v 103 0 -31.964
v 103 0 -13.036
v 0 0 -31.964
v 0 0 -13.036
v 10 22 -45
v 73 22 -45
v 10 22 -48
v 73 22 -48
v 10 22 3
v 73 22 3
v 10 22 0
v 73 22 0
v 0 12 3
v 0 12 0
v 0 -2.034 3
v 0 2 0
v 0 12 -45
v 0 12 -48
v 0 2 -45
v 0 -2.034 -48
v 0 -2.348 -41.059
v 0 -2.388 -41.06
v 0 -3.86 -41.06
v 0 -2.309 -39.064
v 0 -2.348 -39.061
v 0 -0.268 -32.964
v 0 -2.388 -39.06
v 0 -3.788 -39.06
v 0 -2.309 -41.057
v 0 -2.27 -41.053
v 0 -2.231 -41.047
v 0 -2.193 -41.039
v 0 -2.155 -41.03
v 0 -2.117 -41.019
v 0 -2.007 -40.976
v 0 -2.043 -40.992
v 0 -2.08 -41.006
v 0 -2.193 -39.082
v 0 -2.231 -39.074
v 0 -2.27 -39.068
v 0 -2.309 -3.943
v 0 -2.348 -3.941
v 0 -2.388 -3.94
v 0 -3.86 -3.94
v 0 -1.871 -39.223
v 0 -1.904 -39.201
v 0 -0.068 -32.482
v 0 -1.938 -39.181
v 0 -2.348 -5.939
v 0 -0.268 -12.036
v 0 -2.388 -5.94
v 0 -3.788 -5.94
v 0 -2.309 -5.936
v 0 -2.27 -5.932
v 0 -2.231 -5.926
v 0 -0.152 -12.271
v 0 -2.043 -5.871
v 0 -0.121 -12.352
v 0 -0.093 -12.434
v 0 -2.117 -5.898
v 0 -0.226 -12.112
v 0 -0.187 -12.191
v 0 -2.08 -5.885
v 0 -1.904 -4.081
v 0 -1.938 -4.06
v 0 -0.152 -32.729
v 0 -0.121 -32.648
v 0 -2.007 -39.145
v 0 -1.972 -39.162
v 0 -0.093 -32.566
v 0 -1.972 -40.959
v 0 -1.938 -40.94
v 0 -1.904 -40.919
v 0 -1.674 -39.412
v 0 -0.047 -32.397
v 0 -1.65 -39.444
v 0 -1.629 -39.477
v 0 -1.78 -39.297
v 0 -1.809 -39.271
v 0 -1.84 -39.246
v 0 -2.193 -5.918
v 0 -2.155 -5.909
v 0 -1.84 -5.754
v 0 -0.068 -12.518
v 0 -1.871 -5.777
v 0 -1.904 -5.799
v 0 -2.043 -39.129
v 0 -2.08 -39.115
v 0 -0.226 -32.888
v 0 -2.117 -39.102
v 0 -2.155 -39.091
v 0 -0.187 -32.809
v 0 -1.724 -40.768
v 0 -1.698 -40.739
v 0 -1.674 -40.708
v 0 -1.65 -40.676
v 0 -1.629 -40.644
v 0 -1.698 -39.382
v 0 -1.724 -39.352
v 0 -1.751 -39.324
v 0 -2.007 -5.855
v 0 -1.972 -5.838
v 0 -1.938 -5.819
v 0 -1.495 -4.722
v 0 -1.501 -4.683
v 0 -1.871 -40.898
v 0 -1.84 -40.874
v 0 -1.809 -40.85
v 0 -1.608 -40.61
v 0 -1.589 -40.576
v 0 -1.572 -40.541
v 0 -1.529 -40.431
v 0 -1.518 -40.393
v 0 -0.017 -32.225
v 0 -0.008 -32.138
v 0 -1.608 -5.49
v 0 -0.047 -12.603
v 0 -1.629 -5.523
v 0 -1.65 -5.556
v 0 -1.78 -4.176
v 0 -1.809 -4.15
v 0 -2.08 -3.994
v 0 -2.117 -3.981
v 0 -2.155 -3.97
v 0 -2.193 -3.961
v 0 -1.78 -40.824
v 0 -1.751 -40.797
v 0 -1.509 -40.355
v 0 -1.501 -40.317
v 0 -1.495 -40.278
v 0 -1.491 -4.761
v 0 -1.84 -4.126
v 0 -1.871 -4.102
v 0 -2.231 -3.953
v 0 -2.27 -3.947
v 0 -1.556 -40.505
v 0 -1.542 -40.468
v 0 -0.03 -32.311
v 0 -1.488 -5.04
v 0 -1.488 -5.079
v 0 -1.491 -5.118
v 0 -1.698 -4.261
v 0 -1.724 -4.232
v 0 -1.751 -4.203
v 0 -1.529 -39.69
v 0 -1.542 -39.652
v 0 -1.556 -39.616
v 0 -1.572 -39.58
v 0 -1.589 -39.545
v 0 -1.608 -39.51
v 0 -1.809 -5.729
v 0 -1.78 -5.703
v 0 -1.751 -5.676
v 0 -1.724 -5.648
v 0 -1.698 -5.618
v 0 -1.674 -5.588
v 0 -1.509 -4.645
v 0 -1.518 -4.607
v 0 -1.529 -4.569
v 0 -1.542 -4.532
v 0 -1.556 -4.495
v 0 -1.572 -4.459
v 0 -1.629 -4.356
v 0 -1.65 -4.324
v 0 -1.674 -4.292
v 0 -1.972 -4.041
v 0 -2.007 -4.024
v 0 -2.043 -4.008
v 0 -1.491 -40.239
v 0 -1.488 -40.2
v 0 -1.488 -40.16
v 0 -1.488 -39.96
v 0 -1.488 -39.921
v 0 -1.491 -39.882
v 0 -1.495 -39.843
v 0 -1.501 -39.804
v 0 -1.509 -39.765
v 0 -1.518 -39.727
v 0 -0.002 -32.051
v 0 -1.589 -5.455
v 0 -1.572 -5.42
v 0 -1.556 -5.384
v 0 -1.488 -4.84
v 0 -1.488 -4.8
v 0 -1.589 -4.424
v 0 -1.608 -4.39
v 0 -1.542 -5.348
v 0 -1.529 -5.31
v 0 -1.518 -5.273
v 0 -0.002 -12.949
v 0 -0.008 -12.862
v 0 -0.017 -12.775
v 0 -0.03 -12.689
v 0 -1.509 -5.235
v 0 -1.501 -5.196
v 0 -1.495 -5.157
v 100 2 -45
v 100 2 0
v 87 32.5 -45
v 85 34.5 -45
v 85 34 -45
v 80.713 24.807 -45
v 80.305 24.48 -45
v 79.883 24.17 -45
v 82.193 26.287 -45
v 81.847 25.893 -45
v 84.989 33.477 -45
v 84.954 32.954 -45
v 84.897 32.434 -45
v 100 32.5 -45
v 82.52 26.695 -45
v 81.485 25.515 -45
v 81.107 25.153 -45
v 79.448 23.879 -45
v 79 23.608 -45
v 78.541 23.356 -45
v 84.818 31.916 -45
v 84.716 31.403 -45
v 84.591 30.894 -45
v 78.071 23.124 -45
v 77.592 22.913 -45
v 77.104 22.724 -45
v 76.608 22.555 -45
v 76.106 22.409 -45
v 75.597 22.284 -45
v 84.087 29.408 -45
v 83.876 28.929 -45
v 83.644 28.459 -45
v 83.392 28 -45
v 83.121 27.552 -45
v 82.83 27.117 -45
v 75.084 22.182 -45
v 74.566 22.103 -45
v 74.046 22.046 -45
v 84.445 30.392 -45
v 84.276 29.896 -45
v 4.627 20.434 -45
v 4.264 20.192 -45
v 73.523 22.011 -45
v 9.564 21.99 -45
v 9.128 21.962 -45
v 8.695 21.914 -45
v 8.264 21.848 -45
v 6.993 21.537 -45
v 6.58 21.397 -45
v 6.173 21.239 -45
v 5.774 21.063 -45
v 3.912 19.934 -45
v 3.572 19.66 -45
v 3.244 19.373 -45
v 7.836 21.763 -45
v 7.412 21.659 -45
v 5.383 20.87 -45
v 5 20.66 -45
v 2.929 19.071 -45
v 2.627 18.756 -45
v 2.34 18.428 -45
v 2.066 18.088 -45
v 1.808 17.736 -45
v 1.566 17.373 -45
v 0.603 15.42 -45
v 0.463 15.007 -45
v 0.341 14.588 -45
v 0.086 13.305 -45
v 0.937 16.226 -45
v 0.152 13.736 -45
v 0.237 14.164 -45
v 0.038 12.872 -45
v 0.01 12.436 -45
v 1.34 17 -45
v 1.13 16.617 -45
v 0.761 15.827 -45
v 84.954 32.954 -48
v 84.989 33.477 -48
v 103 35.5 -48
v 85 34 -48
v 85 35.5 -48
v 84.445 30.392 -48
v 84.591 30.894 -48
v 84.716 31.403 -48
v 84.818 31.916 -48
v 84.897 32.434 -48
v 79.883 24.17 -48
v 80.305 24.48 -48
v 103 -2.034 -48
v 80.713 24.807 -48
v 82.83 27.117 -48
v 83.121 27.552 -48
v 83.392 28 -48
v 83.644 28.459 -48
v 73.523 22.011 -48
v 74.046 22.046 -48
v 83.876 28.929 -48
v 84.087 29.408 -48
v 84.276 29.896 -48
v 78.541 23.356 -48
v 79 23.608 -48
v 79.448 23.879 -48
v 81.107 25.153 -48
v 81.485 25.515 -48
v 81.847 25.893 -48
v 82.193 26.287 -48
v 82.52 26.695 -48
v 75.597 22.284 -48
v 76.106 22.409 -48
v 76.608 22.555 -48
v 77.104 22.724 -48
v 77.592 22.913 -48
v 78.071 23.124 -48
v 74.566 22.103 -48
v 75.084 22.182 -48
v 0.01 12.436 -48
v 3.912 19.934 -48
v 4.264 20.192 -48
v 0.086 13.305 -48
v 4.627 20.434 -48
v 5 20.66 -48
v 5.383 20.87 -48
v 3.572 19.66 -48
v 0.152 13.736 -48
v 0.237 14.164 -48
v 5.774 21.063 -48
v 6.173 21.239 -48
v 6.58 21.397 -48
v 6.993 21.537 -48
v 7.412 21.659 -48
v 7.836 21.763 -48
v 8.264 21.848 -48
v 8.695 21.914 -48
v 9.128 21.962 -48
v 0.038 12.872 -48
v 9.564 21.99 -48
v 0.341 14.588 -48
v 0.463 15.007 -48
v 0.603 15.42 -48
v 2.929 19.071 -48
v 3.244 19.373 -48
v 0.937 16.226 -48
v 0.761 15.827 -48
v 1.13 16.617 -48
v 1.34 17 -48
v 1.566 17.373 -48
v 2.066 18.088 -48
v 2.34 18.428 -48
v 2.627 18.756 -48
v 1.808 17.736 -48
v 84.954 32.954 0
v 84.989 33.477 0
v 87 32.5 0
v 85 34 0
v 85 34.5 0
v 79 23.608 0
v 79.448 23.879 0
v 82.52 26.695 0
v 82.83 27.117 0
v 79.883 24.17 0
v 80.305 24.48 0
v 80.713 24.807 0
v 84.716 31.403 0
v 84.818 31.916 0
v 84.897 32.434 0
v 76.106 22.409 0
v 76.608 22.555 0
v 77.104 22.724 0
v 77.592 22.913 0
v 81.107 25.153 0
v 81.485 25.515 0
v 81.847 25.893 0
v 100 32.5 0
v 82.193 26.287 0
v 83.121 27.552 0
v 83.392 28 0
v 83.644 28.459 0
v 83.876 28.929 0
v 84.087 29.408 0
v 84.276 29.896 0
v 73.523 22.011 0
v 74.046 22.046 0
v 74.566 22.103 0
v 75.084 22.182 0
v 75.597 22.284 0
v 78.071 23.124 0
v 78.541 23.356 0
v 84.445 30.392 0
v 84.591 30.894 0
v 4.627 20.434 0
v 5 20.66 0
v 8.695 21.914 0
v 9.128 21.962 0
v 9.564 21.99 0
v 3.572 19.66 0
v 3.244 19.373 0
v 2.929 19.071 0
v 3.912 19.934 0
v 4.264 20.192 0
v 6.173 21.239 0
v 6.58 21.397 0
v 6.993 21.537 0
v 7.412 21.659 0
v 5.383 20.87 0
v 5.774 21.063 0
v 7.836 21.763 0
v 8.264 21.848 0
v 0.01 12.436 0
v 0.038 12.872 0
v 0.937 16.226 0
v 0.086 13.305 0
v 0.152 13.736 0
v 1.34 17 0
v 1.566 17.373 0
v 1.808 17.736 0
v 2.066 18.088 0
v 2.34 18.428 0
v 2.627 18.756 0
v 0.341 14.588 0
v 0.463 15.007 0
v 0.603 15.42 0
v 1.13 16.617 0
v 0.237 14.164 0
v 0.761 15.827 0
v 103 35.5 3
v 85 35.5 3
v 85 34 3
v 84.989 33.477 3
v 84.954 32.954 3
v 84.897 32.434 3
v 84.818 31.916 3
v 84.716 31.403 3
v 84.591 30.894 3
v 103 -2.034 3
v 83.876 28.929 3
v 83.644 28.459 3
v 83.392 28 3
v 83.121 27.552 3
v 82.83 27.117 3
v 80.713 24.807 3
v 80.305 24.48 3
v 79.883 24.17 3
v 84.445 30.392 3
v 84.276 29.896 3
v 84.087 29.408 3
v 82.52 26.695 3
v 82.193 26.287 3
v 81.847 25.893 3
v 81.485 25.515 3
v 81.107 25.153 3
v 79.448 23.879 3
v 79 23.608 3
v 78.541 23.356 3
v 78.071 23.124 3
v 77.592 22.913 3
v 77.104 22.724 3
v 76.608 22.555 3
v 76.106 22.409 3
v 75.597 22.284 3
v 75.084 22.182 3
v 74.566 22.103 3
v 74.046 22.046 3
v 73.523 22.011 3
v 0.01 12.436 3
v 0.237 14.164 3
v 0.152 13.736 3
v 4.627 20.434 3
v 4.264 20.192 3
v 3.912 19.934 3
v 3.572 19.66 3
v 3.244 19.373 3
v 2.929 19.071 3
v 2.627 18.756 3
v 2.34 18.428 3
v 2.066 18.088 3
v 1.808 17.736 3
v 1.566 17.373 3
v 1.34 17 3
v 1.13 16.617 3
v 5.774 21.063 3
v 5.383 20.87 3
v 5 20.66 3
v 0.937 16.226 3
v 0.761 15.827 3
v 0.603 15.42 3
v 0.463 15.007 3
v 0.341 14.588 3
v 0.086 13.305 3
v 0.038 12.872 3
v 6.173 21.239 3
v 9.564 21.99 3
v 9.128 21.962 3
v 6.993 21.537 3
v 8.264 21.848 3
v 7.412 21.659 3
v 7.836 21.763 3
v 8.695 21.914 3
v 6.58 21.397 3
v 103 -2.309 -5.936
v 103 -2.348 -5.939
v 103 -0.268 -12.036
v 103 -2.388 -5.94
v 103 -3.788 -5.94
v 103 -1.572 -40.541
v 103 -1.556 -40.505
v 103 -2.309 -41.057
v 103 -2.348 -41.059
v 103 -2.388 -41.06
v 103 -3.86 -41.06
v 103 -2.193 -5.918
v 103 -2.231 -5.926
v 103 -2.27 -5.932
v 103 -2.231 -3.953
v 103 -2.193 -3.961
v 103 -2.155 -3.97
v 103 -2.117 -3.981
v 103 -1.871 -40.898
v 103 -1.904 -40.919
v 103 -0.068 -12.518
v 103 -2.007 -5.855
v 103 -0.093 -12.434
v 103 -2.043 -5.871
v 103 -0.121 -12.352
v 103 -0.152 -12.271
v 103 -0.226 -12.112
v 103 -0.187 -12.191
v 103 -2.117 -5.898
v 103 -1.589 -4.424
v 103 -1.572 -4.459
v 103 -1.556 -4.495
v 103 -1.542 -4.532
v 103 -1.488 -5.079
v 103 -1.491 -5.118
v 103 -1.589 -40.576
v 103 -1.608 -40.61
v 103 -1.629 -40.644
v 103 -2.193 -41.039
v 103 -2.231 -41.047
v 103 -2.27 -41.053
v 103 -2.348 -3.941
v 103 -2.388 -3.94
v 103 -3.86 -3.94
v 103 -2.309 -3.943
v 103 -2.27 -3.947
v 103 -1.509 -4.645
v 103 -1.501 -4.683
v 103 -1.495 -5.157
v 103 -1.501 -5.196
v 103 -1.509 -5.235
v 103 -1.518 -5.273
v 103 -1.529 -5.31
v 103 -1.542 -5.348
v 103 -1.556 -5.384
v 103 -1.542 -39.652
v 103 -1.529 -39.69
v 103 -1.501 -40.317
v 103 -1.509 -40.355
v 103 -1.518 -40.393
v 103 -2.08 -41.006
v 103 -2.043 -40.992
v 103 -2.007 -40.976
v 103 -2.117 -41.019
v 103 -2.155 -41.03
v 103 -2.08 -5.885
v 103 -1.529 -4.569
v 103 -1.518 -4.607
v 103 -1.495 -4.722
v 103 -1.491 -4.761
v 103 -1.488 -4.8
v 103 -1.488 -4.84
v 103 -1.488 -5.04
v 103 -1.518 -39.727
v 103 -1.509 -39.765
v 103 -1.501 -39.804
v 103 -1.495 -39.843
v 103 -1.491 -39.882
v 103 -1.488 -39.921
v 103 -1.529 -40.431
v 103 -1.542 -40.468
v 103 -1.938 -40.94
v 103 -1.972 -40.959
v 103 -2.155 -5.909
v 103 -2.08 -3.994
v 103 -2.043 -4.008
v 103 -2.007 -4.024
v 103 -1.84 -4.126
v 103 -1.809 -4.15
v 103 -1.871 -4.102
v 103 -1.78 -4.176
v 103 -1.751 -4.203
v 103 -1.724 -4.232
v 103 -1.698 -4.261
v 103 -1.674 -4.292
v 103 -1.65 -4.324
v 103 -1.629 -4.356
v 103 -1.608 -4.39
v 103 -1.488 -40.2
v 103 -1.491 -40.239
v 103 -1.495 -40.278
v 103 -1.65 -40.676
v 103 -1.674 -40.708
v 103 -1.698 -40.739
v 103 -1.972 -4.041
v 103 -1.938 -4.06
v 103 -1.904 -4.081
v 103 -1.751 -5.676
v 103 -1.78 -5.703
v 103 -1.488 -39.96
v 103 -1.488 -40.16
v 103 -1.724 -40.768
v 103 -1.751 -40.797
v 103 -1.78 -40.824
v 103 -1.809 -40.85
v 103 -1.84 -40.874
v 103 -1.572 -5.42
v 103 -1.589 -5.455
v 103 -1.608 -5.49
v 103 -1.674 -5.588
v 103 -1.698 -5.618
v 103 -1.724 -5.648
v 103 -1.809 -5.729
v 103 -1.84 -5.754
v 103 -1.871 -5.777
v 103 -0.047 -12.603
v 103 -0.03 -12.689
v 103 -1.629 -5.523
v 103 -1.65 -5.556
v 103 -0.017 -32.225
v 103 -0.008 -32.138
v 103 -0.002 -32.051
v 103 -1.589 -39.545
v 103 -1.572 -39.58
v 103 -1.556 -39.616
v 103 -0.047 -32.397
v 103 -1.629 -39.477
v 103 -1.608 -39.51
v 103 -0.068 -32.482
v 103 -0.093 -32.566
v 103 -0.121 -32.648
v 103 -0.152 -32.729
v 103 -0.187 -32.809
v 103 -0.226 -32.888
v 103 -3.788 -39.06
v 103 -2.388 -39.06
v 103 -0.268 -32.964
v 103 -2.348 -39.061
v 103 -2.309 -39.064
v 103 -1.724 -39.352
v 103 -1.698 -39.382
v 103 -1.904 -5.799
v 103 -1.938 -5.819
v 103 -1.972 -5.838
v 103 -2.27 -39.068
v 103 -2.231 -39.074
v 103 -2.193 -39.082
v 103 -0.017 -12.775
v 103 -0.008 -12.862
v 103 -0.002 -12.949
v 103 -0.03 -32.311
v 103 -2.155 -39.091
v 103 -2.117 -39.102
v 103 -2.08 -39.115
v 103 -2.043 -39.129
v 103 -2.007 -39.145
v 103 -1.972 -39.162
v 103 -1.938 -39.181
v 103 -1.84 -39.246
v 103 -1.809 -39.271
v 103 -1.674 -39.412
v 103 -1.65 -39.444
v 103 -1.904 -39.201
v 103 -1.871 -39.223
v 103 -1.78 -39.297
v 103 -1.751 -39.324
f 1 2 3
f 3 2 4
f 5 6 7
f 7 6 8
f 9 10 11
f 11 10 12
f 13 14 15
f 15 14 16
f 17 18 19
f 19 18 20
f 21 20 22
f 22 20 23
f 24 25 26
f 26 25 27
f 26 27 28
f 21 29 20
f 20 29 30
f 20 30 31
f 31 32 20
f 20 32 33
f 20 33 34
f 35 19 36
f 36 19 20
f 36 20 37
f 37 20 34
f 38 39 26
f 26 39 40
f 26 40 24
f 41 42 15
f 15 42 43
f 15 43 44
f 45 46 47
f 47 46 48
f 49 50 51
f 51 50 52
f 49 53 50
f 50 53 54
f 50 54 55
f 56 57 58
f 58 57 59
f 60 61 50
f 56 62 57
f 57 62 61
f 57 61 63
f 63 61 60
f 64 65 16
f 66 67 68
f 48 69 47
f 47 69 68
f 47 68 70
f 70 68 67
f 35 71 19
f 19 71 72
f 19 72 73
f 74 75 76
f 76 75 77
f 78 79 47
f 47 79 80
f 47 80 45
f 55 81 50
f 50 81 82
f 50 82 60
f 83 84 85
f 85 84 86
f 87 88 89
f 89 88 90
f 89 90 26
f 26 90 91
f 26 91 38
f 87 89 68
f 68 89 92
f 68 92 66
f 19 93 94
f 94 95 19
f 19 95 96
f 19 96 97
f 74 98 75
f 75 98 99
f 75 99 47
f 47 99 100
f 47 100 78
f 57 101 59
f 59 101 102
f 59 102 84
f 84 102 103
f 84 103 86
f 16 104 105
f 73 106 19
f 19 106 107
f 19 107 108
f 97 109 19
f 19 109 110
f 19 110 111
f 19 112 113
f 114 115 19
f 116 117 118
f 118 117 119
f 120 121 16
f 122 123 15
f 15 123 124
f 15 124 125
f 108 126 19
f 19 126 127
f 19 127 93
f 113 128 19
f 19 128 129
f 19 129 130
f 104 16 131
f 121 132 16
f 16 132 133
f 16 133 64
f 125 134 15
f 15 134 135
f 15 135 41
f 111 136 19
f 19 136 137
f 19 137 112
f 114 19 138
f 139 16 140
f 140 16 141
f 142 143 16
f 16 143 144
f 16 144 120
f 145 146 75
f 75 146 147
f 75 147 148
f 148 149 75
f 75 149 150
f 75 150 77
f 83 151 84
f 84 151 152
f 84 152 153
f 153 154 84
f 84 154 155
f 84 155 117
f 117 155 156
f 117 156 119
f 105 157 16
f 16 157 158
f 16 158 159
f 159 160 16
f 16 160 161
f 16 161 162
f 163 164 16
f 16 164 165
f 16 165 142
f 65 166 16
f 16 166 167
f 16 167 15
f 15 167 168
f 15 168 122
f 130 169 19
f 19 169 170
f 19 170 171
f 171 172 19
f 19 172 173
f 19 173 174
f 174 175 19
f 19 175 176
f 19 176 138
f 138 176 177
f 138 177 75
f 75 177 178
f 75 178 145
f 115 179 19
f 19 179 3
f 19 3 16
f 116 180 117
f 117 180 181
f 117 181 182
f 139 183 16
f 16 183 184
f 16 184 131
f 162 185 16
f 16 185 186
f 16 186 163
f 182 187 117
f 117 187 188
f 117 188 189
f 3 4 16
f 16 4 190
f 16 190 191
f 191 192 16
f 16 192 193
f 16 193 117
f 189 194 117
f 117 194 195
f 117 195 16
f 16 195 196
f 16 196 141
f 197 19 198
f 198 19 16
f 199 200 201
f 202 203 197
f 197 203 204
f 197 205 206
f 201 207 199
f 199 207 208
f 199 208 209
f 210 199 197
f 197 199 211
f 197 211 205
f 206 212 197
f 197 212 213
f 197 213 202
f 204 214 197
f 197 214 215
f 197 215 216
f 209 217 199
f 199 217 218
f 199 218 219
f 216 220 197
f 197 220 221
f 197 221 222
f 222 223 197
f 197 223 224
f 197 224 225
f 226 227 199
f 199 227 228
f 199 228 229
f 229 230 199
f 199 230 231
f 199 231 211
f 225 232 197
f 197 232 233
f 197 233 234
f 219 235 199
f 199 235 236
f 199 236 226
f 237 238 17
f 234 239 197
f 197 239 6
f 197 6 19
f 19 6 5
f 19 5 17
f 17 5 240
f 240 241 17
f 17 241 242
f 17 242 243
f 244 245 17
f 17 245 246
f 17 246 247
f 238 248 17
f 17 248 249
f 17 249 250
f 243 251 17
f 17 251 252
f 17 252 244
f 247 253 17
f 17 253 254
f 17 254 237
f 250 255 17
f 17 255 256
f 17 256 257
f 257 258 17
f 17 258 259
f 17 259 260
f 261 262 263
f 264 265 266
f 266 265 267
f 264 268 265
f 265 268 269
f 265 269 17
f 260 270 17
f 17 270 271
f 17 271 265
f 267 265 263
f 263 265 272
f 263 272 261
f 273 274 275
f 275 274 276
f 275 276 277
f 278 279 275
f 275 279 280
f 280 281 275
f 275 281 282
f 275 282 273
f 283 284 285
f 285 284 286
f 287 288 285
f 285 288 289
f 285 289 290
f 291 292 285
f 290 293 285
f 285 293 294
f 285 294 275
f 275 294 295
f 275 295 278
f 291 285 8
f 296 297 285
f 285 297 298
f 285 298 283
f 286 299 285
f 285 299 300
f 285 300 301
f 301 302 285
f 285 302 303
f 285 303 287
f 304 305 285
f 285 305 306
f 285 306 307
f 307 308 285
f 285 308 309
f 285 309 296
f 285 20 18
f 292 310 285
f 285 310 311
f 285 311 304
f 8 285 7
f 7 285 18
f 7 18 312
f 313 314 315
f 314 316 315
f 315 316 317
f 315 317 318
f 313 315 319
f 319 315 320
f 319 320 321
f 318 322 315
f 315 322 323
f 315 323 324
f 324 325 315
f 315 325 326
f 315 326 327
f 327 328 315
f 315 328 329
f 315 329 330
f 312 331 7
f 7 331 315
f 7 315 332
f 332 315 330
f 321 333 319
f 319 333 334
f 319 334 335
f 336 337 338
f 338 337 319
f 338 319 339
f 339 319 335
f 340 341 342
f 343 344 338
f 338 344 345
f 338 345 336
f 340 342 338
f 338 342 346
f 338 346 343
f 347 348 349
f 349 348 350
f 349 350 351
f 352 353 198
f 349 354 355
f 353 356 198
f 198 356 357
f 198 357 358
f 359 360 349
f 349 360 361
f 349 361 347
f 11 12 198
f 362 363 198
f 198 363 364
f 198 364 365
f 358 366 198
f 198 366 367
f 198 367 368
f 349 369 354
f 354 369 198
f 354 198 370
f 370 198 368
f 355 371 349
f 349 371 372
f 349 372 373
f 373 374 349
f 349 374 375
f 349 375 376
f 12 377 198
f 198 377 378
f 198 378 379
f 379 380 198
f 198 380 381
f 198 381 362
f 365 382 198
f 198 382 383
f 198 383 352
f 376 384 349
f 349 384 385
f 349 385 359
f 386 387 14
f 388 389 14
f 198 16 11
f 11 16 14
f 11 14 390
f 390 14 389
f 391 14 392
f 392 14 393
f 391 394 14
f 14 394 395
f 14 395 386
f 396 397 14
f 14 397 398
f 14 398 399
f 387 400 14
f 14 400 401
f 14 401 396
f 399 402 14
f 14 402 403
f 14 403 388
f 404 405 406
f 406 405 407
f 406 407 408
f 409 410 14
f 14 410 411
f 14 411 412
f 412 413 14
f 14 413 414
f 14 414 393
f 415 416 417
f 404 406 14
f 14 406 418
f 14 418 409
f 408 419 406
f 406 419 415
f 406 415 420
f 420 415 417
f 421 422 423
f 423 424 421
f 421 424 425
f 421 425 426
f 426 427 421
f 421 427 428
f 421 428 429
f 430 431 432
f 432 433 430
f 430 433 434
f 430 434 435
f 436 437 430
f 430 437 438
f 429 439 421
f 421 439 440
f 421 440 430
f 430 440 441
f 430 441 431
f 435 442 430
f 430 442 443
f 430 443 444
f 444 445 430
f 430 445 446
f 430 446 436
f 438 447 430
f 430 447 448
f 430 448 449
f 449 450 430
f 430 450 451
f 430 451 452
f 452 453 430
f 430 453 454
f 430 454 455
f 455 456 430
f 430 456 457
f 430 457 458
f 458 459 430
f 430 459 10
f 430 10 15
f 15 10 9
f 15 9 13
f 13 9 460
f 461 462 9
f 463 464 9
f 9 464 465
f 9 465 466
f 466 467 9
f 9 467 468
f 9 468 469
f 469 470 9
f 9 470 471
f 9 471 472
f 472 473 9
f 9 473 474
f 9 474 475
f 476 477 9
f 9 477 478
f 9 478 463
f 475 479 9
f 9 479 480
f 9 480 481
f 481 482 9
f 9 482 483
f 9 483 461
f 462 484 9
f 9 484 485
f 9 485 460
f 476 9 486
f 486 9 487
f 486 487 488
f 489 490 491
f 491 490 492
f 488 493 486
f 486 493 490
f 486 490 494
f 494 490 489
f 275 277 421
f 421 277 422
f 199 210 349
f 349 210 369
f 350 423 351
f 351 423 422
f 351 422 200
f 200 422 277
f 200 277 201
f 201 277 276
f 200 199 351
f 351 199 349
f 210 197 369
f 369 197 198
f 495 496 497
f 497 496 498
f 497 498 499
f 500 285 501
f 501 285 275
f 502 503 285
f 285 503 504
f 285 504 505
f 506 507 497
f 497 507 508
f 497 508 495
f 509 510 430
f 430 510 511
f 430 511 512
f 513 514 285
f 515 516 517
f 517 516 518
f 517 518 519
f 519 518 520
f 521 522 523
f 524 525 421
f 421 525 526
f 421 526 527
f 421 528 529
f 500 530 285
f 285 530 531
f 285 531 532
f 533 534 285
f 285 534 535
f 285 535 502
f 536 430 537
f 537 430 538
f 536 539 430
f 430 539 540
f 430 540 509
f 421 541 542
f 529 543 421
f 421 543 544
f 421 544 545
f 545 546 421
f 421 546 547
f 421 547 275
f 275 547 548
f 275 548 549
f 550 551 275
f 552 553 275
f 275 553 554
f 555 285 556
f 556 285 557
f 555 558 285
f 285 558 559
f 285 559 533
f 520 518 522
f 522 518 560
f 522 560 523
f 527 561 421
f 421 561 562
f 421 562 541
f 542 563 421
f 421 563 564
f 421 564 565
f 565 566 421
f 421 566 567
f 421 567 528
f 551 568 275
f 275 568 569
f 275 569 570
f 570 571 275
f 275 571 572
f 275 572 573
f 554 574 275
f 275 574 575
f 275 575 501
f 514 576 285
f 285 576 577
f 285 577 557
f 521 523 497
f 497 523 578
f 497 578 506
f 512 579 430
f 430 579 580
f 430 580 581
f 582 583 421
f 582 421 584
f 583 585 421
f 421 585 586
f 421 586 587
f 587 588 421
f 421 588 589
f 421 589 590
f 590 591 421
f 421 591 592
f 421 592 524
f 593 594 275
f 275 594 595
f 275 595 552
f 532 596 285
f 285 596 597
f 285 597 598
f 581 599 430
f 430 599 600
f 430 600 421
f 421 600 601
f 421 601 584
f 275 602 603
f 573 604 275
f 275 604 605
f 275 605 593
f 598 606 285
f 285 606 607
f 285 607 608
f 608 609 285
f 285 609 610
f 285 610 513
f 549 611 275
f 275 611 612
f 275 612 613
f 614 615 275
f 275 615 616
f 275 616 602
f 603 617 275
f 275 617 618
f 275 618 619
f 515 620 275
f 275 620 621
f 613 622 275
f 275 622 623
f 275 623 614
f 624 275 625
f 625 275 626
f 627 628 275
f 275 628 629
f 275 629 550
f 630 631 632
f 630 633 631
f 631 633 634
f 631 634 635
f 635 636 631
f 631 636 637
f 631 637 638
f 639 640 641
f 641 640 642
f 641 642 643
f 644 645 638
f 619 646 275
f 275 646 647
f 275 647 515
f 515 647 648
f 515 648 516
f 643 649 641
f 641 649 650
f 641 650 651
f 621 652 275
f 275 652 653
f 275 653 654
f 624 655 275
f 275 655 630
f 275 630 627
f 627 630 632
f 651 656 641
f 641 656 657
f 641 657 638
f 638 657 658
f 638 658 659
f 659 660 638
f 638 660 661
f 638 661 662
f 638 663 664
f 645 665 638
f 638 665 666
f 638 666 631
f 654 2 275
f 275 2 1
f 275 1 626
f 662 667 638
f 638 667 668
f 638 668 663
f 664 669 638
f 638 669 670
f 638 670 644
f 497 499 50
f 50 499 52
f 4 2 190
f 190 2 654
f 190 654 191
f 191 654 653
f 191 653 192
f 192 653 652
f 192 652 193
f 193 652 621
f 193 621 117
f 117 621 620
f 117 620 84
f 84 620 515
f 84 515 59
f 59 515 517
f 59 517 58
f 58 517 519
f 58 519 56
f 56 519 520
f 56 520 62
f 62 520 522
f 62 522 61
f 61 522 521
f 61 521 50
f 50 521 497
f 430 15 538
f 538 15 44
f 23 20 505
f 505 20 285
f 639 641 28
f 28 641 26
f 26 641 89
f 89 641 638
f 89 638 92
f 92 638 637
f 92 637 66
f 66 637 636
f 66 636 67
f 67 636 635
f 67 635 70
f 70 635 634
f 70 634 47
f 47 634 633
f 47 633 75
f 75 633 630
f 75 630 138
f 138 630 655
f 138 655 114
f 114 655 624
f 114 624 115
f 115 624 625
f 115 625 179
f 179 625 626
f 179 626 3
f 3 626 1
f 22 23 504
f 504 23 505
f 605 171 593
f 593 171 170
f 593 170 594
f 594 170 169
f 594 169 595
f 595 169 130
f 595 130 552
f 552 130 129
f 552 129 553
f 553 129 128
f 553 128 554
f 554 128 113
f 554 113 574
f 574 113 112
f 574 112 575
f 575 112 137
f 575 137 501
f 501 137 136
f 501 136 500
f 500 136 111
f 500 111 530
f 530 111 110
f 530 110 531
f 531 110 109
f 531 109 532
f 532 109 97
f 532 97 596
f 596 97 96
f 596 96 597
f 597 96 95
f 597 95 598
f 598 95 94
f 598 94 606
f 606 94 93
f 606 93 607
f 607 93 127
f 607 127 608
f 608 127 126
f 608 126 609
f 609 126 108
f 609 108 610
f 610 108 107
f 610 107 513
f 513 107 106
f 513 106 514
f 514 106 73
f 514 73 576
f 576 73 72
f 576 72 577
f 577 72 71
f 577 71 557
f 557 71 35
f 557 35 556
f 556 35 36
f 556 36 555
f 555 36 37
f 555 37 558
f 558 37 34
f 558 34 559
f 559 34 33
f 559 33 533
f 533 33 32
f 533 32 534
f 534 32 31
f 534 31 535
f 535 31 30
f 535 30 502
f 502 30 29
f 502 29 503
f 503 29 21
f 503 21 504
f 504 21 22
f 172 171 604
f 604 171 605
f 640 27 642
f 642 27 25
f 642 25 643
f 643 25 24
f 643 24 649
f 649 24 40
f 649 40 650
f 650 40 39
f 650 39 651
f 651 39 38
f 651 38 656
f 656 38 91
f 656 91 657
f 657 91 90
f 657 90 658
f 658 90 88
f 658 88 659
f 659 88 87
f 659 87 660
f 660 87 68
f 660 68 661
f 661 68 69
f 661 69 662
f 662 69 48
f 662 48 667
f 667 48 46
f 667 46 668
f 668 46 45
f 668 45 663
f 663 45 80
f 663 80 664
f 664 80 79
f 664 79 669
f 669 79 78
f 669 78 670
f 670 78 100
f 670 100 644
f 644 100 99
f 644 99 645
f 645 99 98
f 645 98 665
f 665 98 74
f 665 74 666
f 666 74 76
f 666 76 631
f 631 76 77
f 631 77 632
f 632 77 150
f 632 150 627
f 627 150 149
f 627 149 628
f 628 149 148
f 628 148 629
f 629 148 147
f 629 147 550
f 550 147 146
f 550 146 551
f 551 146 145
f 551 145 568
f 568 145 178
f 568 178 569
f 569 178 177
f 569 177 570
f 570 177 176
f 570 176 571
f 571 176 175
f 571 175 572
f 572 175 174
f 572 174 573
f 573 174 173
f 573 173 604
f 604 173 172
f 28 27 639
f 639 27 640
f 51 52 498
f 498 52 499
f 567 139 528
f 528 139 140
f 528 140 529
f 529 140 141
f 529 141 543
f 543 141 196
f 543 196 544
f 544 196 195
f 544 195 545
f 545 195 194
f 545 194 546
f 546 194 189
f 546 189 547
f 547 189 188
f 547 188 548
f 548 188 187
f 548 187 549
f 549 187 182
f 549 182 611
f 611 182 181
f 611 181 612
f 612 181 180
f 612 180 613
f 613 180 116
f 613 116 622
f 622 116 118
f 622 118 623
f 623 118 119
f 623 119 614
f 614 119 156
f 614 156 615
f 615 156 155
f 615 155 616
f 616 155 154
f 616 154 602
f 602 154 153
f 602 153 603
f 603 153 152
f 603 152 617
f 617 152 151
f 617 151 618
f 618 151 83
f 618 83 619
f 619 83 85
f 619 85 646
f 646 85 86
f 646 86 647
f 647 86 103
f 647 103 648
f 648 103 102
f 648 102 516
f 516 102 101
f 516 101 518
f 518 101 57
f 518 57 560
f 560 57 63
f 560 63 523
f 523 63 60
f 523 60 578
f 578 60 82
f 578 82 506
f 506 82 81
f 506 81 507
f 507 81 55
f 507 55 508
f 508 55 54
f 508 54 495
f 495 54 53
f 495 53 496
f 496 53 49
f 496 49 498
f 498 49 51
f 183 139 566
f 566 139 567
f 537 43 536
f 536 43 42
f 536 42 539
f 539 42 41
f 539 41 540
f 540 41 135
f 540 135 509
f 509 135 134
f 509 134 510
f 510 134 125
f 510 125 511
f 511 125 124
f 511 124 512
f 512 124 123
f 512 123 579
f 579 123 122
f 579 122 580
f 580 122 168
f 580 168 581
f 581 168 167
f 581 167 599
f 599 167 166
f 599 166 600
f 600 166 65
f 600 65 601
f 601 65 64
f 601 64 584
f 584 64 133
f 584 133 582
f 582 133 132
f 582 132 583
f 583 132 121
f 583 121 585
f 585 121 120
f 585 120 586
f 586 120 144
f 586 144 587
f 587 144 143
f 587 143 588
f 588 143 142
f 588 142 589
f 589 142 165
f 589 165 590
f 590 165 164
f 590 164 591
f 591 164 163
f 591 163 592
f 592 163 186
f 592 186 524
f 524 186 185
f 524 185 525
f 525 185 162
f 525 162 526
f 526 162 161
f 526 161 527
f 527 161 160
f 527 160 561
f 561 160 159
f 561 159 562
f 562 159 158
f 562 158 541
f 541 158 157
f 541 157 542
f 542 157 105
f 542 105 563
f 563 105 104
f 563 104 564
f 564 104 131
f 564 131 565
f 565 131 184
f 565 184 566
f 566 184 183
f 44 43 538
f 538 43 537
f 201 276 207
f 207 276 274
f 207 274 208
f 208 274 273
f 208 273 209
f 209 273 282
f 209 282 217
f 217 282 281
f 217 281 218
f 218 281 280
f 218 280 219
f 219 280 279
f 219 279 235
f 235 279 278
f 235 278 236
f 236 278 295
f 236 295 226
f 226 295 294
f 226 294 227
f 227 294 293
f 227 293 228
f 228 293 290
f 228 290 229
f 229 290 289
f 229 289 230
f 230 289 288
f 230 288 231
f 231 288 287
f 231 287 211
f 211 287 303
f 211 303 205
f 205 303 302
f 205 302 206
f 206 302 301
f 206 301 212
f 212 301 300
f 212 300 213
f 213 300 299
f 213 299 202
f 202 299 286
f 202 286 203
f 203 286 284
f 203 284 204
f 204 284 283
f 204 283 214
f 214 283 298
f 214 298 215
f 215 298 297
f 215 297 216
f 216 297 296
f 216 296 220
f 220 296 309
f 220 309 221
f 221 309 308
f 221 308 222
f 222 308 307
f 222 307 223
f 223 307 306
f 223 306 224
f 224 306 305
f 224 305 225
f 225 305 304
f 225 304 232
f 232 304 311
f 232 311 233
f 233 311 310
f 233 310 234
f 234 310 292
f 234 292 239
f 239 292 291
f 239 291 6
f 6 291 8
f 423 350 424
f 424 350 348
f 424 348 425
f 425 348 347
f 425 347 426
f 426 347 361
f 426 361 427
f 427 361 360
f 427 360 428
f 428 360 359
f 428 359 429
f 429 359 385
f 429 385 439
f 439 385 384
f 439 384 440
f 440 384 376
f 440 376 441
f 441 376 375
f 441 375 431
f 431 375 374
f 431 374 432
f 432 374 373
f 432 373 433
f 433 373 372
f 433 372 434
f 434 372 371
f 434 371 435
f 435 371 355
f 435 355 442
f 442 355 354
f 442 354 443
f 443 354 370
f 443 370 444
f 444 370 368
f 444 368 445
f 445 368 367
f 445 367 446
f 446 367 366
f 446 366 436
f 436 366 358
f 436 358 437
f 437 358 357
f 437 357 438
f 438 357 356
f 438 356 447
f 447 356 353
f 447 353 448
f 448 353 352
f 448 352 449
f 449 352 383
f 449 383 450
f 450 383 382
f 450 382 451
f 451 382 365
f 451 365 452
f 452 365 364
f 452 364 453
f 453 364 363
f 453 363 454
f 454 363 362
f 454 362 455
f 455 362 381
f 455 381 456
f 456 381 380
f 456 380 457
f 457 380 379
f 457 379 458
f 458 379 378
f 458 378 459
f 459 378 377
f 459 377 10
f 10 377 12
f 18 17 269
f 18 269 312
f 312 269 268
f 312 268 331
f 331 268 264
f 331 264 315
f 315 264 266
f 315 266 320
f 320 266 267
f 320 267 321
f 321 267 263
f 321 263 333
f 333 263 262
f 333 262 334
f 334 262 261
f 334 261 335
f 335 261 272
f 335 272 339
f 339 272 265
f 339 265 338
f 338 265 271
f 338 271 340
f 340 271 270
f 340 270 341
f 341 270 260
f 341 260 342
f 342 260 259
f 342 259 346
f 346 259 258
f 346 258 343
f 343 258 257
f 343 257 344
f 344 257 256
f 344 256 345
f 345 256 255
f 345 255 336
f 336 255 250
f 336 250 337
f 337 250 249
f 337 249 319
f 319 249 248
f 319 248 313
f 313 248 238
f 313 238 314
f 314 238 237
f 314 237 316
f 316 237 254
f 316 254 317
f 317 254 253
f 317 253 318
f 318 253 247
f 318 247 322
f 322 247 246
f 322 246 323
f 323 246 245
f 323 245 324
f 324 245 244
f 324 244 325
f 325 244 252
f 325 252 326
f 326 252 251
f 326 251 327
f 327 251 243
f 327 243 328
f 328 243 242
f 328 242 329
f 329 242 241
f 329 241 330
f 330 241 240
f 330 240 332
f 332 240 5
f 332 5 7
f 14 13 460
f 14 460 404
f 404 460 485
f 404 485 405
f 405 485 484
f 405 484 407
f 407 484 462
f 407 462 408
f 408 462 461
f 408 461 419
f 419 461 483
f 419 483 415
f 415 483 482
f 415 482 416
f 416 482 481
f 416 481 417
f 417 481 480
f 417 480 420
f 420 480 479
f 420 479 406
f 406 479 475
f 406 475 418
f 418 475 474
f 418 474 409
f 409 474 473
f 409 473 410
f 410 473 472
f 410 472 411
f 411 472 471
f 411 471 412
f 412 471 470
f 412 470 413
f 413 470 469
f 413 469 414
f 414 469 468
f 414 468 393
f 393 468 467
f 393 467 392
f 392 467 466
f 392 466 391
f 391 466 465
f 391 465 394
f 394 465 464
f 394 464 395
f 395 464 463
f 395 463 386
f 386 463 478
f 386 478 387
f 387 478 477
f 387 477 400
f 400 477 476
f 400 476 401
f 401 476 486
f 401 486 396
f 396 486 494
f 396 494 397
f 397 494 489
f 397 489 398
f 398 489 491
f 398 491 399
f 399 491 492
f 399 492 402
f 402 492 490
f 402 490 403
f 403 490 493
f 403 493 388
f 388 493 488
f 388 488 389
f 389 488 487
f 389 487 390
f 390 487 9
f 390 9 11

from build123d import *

# Parameters (mm, degrees)
SKETCH1_W                = 100
SKETCH1_H                = 45
BOSS_EXTRUDE1_DEPTH      = 2
BOSS_EXTRUDE2_DEPTH      = 100
BOSS_EXTRUDE3_DEPTH      = 15
CHAMFER2_SIZE            = 2
BOSS_EXTRUDE4_DEPTH      = 3
BOSS_EXTRUDE4_DEPTH_BACK = 48
SKETCH4_W                = 3
SKETCH4_H                = 35.5
BOSS_EXTRUDE6_DEPTH      = 103
CUT_EXTRUDE1_DEPTH       = 108
FILLET1_R                = 12
FILLET2_R                = 10


# Read off the part's stored shape, not the designer's step: Boss-Extrude6
with BuildPart() as part:
    # Sketch1 → Boss-Extrude1 (new body)
    with BuildSketch(Plane(origin=(0, 0, 0), x_dir=(1, 0, 0), z_dir=(0, 1, 0))):
        with Locations((50, 22.5)):
            Rectangle(SKETCH1_W, SKETCH1_H)
    extrude(amount=BOSS_EXTRUDE1_DEPTH)

    # Sketch2 → Boss-Extrude2 (add)
    with BuildSketch(Plane.ZY):
        Polygon((0, 2), (0, 22), (3, 22), (3, 0), (0, 0), align=None)
        Polygon((-45, 2), (-45, 22), (-48, 22), (-48, 0), (-45, 0), align=None)
    extrude(amount=-BOSS_EXTRUDE2_DEPTH)

    # Sketch3 → Boss-Extrude3 (add)
    with BuildSketch(Plane(origin=(100, 0, 0), x_dir=(0, 0, -1), z_dir=(1, 0, 0))):
        Polygon((0, 22), (0, 32.5), (45, 32.5), (45, 22), (48, 22), (48, 35.5), (-3, 35.5), (-3, 22), align=None)
    extrude(amount=-BOSS_EXTRUDE3_DEPTH)

    # Chamfer2
    chamfer2_edges = [part.edges().sort_by_distance(p)[0] for p in [
        (85, 32.5, -22.5),
    ]]
    chamfer(chamfer2_edges, length=CHAMFER2_SIZE)

    # Sketch4 → Boss-Extrude4 (add, two sides: drawn at the far end of the back side and taken through both)
    with BuildSketch(Plane.XY.offset(-BOSS_EXTRUDE4_DEPTH_BACK)):
        with Locations((101.5, 17.75)):
            Rectangle(SKETCH4_W, SKETCH4_H)
    extrude(amount=BOSS_EXTRUDE4_DEPTH + BOSS_EXTRUDE4_DEPTH_BACK)

    # Boss-Extrude6 outline → Boss-Extrude6 (add)
    with BuildSketch(Plane.YZ):
        with BuildLine():
            Line((0, -48), (0, -31.964101615))
            ThreePointArc((0, -31.964101615), (-0.068148347, -32.481739705), (-0.267949192, -32.964101615))
            Line((-0.267949192, -32.964101615), (-3.78757632, -39.060274624))
            ThreePointArc((-3.78757632, -39.060274624), (-4.037826078, -39.794785514), (-3.989674587, -40.569261223))
            Line((-3.989674587, -40.569261223), (-2.034217014, -48))
            Line((-2.034217014, -48), (0, -48))
        make_face()
        with BuildLine():
            ThreePointArc((-3.989674587, -4.430738777), (-4.037826078, -5.205214486), (-3.78757632, -5.939725376))
            Line((-3.78757632, -5.939725376), (-0.267949192, -12.035898385))
            ThreePointArc((-0.267949192, -12.035898385), (-0.068148347, -12.518260295), (0, -13.035898385))
            Line((0, -13.035898385), (0, 3))
            Line((0, 3), (-2.034217014, 3))
            Line((-2.034217014, 3), (-3.989674587, -4.430738777))
        make_face()
    extrude(amount=BOSS_EXTRUDE6_DEPTH)

    # Sketch6 → Cut-Extrude1 (cut)
    with BuildSketch(Plane.ZY):
        with BuildLine():
            Line((-39.060274624, -3.78757632), (-39.060274624, -2.38757632))
            ThreePointArc((-39.060274624, -2.38757632), (-39.323878521, -1.751180217), (-39.960274624, -1.48757632))
            Line((-39.960274624, -1.48757632), (-40.160274624, -1.48757632))
            ThreePointArc((-40.160274624, -1.48757632), (-40.796670727, -1.751180217), (-41.060274624, -2.38757632))
            Line((-41.060274624, -2.38757632), (-41.060274624, -3.860460534))
            Line((-41.060274624, -3.860460534), (-41.060274624, -4.910280297))
            Line((-41.060274624, -4.910280297), (-39.060274624, -4.910280297))
            Line((-39.060274624, -4.910280297), (-39.060274624, -3.78757632))
        make_face()
        with BuildLine():
            Line((-5.939725376, -3.78757632), (-5.939725376, -2.38757632))
            ThreePointArc((-5.939725376, -2.38757632), (-5.676121479, -1.751180217), (-5.039725376, -1.48757632))
            Line((-5.039725376, -1.48757632), (-4.839725376, -1.48757632))
            ThreePointArc((-4.839725376, -1.48757632), (-4.203329273, -1.751180217), (-3.939725376, -2.38757632))
            Line((-3.939725376, -2.38757632), (-3.939725376, -3.860460534))
            Line((-3.939725376, -3.860460534), (-3.939725376, -5.247114717))
            Line((-3.939725376, -5.247114717), (-5.939725376, -5.247114717))
            Line((-5.939725376, -5.247114717), (-5.939725376, -3.78757632))
        make_face()
    extrude(amount=-CUT_EXTRUDE1_DEPTH, mode=Mode.SUBTRACT)

    # Fillet1
    fillet1_edges = [part.edges().sort_by_distance(p)[0] for p in [
        (85, 22, 1.5),
        (85, 22, -46.5),
    ]]
    fillet(fillet1_edges, radius=FILLET1_R)

    # Fillet2
    fillet2_edges = [part.edges().sort_by_distance(p)[0] for p in [
        (0, 22, 1.5),
        (0, 22, -46.5),
    ]]
    fillet(fillet2_edges, radius=FILLET2_R)


solid = part.part
